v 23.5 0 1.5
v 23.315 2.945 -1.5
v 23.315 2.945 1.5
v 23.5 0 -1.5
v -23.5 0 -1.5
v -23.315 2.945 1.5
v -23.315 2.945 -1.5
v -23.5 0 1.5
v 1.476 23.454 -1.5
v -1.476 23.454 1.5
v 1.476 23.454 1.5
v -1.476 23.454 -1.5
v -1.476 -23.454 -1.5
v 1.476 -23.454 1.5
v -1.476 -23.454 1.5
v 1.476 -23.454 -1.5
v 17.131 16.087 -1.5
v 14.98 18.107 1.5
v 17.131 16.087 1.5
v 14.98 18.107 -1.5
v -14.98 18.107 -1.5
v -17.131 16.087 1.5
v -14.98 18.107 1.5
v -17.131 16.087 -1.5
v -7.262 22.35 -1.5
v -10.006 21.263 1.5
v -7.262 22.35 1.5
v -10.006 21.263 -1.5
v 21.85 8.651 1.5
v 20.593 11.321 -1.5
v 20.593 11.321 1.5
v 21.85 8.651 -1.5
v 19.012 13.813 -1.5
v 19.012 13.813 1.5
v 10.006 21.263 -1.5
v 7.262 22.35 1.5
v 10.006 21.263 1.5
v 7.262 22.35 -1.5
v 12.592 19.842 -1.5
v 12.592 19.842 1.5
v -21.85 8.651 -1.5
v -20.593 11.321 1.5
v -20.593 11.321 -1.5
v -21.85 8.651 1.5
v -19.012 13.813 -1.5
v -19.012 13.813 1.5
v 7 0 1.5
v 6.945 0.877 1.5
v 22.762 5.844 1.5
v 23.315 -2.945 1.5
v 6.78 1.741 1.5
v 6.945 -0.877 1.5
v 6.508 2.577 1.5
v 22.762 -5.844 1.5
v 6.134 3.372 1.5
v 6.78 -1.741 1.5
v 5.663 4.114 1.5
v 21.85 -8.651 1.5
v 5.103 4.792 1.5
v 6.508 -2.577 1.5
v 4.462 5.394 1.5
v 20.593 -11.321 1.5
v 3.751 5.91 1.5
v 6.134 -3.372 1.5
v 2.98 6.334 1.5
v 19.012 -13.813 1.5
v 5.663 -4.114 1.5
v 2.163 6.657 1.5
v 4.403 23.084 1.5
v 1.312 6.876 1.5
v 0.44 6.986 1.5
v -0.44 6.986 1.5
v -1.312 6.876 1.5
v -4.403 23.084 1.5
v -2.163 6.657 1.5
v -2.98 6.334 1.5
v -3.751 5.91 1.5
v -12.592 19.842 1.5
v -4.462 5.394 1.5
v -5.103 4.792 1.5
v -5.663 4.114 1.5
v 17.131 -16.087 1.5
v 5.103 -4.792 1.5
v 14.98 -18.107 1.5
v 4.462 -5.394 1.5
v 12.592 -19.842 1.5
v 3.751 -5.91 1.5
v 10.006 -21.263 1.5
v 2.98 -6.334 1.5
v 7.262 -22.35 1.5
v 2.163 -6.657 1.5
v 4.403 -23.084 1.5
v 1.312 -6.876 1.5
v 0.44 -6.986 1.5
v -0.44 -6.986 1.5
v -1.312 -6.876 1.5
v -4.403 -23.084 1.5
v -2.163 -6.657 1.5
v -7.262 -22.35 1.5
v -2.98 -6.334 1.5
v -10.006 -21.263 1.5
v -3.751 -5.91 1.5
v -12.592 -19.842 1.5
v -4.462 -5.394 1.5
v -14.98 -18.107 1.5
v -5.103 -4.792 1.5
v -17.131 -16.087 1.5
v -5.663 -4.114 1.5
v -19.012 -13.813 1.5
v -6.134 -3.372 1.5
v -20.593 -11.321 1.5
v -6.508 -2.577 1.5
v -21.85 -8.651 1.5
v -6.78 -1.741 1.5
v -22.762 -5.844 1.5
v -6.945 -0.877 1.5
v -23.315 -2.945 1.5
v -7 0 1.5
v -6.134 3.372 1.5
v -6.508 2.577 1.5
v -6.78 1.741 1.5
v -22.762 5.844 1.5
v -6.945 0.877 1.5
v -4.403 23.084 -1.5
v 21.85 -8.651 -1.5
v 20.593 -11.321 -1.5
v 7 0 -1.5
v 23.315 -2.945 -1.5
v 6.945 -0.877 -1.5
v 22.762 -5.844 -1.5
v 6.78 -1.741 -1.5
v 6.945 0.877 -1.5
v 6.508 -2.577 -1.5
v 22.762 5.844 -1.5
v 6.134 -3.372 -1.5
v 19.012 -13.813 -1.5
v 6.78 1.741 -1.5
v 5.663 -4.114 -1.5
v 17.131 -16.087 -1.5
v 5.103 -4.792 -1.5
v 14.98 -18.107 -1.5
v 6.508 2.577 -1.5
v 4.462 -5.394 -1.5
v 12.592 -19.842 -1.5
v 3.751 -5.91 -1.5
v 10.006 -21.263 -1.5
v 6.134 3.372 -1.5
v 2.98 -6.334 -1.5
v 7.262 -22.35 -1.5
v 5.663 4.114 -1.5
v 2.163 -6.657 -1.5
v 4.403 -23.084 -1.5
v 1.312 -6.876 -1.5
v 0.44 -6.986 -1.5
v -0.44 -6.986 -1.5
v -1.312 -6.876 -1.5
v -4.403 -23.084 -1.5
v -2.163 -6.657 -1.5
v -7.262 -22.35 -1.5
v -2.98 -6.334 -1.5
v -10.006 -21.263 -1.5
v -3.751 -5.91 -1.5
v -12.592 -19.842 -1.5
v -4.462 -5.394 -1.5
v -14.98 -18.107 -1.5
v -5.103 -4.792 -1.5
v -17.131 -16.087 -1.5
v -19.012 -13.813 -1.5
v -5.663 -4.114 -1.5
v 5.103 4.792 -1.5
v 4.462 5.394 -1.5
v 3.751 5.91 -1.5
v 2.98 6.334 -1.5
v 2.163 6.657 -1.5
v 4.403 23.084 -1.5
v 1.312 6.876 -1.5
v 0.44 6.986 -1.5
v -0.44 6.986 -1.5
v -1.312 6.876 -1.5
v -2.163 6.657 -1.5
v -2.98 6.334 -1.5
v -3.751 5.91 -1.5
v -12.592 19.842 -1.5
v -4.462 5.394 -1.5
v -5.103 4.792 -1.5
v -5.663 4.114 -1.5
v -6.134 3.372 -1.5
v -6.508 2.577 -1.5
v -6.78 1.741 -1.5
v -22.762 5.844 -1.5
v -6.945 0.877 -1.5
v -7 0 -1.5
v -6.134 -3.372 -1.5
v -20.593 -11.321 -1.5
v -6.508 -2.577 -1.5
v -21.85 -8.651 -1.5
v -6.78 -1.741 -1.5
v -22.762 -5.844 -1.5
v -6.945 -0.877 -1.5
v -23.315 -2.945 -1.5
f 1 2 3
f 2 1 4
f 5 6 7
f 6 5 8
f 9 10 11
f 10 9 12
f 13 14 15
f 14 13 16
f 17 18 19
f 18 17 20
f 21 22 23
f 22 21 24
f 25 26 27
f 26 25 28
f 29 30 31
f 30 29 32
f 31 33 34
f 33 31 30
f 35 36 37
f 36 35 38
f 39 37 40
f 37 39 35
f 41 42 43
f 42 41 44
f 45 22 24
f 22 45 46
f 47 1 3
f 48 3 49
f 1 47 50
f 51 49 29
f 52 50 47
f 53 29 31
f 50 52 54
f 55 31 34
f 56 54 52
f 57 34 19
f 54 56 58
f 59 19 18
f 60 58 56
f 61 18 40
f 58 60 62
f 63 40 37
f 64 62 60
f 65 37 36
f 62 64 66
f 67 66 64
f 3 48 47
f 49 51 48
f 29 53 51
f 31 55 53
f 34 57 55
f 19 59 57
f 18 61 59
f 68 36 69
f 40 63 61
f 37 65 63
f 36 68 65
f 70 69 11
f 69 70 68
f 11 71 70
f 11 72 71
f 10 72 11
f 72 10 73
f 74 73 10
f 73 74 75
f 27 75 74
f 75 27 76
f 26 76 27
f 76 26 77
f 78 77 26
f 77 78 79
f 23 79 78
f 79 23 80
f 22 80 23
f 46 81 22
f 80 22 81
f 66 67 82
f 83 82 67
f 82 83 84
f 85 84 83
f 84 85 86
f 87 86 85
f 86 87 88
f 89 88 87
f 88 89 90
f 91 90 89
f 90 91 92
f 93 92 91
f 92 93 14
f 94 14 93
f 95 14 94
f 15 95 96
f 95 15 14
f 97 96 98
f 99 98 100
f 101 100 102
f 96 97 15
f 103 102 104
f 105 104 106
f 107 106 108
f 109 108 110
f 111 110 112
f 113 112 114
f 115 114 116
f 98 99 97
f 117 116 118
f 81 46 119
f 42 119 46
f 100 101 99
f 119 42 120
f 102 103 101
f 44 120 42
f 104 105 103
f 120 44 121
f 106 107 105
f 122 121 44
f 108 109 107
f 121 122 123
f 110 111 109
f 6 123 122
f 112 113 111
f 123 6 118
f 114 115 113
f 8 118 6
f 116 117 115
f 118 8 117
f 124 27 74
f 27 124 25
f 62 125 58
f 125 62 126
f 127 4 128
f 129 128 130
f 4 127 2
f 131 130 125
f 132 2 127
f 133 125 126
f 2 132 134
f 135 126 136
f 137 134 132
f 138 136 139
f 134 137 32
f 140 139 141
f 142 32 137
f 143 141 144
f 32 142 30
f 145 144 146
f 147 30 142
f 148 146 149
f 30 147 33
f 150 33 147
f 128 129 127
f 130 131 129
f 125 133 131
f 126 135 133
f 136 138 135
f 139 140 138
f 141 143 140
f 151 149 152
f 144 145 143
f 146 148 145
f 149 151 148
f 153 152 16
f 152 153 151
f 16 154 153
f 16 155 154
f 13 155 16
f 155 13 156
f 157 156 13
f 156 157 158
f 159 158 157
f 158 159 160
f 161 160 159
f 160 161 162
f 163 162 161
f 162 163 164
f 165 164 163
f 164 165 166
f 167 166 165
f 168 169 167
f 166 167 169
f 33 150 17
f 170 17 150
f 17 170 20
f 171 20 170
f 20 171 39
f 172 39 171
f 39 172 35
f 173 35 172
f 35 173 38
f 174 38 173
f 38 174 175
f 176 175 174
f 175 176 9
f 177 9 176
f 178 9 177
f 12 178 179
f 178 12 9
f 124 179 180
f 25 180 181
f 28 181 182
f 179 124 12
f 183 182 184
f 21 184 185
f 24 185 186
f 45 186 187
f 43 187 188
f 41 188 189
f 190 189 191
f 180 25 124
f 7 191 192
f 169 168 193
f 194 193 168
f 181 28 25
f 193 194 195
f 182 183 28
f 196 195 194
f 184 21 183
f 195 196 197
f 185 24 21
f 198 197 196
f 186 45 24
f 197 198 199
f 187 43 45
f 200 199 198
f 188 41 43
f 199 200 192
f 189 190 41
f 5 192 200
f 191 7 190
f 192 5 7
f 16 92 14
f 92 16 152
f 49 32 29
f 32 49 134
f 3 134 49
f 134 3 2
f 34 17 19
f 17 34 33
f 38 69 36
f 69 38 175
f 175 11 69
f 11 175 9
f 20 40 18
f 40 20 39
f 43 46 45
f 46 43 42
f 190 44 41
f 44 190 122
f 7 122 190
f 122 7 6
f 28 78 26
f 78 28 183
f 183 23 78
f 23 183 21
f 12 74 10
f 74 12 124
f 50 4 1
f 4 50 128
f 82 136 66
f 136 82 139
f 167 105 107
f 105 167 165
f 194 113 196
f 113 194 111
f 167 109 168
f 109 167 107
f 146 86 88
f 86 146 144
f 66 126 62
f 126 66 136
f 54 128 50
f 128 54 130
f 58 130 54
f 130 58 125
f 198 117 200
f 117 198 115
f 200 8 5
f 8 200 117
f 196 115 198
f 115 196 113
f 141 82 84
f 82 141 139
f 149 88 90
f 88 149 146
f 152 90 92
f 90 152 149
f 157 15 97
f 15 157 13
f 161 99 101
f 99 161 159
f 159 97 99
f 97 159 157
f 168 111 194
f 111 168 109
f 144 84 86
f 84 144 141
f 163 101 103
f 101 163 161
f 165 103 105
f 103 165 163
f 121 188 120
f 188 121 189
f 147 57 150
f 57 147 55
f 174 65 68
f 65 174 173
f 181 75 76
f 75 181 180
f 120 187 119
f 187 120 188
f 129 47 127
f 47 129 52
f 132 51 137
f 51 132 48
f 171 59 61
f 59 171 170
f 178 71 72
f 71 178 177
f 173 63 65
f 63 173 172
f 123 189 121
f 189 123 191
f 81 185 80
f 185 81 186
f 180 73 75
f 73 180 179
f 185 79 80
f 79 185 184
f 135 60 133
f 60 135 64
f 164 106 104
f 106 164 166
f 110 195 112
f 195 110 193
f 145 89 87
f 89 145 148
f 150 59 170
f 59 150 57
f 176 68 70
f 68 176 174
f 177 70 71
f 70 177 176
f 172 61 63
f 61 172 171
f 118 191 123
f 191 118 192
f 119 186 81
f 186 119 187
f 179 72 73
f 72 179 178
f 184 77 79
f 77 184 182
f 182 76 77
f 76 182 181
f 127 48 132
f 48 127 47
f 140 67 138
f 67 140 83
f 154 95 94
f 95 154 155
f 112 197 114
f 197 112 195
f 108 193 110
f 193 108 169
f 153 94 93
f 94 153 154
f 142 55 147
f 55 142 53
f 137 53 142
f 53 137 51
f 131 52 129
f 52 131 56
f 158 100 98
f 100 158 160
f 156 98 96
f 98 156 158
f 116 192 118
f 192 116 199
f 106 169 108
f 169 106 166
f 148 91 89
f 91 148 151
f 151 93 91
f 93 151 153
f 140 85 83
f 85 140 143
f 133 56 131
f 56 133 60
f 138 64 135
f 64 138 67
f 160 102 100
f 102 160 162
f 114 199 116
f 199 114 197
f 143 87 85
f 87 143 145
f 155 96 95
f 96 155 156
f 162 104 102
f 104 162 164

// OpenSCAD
$fn = 50;


difference() {
	union() {
		translate(v = [0, 0, -1.5000000000]) {
			cylinder(h = 3, r = 23.5000000000);
		}
	}
	union() {
		translate(v = [0, 0, -100.0000000000]) {
			cylinder(h = 200, r = 7);
		}
	}
}
